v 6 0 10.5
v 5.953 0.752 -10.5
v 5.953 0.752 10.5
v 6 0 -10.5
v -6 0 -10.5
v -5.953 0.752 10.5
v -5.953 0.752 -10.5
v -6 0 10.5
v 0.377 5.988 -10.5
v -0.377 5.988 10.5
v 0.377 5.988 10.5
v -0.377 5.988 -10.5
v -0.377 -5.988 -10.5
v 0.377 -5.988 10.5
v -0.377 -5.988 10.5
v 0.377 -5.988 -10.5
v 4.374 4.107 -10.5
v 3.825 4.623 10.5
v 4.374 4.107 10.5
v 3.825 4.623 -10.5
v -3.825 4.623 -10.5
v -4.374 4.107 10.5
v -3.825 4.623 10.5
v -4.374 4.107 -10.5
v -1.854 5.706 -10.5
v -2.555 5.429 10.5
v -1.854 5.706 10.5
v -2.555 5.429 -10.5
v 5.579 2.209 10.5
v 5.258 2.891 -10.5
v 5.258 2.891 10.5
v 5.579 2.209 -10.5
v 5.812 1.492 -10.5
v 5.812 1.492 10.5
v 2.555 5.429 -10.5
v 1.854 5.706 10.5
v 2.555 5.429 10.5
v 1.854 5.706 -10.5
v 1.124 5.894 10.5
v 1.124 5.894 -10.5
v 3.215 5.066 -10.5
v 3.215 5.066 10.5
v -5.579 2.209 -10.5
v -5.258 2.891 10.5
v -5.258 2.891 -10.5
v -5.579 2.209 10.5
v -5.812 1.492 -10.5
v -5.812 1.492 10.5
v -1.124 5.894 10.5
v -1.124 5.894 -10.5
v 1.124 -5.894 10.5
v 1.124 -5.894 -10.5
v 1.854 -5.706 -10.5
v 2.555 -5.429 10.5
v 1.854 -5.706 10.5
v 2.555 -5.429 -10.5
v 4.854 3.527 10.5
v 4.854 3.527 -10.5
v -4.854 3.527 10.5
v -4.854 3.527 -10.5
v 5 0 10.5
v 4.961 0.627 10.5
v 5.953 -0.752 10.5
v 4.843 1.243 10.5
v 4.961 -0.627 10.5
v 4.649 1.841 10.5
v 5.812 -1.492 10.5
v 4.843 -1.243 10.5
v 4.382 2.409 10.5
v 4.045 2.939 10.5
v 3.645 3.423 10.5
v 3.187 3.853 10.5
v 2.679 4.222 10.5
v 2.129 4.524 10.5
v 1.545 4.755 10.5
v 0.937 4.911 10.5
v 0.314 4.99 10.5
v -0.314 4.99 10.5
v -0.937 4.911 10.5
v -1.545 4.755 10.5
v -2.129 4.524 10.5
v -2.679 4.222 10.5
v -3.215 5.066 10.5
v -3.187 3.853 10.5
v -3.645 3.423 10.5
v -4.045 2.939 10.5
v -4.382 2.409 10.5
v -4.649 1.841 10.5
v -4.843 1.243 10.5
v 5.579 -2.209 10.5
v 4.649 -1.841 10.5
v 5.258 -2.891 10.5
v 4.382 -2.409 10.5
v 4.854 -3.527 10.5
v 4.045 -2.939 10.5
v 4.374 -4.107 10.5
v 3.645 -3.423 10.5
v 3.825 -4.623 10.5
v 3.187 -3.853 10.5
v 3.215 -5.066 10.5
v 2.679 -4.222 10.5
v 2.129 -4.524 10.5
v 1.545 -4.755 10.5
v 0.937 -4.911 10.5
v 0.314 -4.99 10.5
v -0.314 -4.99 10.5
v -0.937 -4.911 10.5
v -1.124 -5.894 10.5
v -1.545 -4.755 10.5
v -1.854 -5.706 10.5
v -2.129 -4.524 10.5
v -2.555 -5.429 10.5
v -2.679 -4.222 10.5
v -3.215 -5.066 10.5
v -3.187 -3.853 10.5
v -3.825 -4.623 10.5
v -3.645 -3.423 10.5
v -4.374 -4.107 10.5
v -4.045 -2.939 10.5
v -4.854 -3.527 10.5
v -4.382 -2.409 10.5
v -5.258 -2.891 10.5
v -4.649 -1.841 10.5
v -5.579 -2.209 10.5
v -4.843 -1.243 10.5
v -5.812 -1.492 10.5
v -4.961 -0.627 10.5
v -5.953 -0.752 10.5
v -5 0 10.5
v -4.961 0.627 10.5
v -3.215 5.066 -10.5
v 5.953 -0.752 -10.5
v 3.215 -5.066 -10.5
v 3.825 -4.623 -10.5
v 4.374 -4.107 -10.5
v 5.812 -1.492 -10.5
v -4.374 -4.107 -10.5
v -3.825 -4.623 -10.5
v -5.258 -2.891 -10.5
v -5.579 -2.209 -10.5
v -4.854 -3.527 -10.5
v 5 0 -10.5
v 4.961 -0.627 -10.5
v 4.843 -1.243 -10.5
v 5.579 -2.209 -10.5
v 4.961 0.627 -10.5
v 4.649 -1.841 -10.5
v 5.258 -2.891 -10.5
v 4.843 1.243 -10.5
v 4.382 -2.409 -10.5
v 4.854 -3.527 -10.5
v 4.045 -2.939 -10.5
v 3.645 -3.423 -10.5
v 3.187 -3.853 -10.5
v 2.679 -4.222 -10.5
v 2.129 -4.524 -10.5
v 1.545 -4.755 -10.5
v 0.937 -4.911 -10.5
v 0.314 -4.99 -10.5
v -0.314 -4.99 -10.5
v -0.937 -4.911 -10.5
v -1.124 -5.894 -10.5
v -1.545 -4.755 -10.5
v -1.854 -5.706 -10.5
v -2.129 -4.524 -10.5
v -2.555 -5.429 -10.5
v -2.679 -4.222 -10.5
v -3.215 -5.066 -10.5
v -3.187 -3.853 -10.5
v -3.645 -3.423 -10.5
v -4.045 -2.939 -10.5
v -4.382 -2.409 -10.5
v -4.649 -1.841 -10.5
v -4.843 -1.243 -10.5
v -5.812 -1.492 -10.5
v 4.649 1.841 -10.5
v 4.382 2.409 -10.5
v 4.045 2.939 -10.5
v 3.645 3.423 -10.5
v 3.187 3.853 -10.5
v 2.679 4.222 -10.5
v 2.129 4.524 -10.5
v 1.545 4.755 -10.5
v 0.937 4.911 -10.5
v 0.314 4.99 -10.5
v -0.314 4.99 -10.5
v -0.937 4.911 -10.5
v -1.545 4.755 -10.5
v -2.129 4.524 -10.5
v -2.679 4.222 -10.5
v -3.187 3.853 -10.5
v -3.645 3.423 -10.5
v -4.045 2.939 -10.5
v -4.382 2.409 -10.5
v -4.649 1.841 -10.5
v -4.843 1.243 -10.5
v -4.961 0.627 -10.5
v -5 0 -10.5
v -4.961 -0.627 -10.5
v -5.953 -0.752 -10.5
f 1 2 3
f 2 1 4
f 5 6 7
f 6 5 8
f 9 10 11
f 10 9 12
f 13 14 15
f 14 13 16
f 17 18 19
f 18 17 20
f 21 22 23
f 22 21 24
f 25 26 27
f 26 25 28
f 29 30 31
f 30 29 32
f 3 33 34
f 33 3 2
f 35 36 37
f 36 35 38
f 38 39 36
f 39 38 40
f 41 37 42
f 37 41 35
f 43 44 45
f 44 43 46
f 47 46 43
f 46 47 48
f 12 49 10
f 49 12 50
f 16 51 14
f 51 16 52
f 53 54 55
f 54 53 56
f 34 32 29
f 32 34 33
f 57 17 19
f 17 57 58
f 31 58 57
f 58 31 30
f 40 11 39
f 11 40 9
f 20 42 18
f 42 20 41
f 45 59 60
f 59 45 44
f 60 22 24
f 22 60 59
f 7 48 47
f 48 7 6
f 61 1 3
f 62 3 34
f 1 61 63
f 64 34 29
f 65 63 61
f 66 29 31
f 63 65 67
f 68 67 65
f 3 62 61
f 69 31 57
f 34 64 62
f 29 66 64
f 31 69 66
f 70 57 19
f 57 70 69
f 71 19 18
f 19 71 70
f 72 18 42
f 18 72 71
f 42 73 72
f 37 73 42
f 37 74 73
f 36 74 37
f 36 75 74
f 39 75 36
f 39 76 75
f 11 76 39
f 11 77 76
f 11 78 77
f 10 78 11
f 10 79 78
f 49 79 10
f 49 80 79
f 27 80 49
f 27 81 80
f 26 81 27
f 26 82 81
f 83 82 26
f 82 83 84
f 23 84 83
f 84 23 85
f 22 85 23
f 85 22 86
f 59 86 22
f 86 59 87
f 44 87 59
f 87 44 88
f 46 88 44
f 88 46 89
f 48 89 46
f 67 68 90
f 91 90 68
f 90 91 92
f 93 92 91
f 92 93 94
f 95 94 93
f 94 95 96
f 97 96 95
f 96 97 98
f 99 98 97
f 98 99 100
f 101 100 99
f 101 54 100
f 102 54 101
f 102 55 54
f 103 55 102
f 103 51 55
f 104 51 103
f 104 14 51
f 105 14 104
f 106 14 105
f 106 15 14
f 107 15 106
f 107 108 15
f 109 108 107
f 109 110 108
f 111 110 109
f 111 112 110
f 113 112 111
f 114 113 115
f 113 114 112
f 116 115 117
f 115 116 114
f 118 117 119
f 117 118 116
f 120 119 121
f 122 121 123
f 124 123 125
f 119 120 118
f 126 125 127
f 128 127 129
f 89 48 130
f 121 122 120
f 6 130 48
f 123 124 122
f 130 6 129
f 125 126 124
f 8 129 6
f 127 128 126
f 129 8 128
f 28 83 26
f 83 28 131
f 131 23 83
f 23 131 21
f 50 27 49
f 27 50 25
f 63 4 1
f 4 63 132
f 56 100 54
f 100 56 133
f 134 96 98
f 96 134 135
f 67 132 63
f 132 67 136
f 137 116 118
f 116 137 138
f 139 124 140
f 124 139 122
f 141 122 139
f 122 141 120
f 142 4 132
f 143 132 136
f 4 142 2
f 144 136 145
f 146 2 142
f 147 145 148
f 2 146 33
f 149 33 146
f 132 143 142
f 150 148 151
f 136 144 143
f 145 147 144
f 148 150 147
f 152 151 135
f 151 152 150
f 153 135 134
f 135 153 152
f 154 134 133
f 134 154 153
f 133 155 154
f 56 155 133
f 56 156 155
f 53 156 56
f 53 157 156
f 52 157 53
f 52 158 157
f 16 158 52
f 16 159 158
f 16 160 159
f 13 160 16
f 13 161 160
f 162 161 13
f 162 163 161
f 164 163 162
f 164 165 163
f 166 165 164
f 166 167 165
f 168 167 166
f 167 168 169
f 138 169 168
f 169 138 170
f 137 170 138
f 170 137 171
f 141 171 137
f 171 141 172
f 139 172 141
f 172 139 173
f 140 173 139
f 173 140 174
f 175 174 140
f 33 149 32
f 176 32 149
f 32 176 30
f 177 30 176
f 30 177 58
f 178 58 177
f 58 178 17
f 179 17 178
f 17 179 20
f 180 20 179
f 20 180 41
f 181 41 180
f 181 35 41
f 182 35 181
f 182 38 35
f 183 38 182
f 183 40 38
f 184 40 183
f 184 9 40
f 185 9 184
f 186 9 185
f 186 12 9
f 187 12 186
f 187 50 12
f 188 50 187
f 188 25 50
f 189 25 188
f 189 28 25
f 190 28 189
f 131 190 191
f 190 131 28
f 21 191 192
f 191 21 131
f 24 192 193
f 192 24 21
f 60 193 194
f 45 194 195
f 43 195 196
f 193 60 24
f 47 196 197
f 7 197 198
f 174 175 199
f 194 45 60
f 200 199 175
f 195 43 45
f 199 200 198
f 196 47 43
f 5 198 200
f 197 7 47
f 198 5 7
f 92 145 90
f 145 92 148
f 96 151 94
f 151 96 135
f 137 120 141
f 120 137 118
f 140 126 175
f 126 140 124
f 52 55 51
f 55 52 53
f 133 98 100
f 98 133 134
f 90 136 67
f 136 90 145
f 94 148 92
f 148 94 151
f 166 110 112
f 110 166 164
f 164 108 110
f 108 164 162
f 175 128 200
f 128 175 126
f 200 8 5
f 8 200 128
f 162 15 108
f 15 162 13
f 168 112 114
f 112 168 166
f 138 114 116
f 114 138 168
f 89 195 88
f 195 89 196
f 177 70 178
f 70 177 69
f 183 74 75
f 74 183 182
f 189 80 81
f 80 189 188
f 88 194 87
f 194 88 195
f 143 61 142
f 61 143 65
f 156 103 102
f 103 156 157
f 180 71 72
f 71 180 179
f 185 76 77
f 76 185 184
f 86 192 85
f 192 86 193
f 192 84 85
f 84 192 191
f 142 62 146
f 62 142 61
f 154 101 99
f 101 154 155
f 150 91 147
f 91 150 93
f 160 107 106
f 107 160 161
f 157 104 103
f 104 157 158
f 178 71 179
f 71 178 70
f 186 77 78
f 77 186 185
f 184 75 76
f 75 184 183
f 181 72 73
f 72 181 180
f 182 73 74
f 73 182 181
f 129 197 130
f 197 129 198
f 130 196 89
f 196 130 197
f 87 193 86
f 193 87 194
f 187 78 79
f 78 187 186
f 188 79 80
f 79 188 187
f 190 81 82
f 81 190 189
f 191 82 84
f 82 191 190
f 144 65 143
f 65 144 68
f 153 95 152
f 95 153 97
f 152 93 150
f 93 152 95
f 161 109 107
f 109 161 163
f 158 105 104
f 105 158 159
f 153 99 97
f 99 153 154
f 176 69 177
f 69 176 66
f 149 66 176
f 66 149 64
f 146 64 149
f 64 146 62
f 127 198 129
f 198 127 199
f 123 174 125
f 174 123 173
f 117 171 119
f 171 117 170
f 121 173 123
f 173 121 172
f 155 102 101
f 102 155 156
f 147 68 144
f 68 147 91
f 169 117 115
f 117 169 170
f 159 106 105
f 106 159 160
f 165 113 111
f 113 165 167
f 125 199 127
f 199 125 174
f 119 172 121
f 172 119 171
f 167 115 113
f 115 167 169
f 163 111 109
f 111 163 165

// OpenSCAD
$fn = 50;


difference() {
	union() {
		translate(v = [0, 0, -10.5000000000]) {
			cylinder(h = 21, r = 6.0000000000);
		}
	}
	union() {
		translate(v = [0, 0, -100.0000000000]) {
			cylinder(h = 200, r = 5);
		}
	}
}
